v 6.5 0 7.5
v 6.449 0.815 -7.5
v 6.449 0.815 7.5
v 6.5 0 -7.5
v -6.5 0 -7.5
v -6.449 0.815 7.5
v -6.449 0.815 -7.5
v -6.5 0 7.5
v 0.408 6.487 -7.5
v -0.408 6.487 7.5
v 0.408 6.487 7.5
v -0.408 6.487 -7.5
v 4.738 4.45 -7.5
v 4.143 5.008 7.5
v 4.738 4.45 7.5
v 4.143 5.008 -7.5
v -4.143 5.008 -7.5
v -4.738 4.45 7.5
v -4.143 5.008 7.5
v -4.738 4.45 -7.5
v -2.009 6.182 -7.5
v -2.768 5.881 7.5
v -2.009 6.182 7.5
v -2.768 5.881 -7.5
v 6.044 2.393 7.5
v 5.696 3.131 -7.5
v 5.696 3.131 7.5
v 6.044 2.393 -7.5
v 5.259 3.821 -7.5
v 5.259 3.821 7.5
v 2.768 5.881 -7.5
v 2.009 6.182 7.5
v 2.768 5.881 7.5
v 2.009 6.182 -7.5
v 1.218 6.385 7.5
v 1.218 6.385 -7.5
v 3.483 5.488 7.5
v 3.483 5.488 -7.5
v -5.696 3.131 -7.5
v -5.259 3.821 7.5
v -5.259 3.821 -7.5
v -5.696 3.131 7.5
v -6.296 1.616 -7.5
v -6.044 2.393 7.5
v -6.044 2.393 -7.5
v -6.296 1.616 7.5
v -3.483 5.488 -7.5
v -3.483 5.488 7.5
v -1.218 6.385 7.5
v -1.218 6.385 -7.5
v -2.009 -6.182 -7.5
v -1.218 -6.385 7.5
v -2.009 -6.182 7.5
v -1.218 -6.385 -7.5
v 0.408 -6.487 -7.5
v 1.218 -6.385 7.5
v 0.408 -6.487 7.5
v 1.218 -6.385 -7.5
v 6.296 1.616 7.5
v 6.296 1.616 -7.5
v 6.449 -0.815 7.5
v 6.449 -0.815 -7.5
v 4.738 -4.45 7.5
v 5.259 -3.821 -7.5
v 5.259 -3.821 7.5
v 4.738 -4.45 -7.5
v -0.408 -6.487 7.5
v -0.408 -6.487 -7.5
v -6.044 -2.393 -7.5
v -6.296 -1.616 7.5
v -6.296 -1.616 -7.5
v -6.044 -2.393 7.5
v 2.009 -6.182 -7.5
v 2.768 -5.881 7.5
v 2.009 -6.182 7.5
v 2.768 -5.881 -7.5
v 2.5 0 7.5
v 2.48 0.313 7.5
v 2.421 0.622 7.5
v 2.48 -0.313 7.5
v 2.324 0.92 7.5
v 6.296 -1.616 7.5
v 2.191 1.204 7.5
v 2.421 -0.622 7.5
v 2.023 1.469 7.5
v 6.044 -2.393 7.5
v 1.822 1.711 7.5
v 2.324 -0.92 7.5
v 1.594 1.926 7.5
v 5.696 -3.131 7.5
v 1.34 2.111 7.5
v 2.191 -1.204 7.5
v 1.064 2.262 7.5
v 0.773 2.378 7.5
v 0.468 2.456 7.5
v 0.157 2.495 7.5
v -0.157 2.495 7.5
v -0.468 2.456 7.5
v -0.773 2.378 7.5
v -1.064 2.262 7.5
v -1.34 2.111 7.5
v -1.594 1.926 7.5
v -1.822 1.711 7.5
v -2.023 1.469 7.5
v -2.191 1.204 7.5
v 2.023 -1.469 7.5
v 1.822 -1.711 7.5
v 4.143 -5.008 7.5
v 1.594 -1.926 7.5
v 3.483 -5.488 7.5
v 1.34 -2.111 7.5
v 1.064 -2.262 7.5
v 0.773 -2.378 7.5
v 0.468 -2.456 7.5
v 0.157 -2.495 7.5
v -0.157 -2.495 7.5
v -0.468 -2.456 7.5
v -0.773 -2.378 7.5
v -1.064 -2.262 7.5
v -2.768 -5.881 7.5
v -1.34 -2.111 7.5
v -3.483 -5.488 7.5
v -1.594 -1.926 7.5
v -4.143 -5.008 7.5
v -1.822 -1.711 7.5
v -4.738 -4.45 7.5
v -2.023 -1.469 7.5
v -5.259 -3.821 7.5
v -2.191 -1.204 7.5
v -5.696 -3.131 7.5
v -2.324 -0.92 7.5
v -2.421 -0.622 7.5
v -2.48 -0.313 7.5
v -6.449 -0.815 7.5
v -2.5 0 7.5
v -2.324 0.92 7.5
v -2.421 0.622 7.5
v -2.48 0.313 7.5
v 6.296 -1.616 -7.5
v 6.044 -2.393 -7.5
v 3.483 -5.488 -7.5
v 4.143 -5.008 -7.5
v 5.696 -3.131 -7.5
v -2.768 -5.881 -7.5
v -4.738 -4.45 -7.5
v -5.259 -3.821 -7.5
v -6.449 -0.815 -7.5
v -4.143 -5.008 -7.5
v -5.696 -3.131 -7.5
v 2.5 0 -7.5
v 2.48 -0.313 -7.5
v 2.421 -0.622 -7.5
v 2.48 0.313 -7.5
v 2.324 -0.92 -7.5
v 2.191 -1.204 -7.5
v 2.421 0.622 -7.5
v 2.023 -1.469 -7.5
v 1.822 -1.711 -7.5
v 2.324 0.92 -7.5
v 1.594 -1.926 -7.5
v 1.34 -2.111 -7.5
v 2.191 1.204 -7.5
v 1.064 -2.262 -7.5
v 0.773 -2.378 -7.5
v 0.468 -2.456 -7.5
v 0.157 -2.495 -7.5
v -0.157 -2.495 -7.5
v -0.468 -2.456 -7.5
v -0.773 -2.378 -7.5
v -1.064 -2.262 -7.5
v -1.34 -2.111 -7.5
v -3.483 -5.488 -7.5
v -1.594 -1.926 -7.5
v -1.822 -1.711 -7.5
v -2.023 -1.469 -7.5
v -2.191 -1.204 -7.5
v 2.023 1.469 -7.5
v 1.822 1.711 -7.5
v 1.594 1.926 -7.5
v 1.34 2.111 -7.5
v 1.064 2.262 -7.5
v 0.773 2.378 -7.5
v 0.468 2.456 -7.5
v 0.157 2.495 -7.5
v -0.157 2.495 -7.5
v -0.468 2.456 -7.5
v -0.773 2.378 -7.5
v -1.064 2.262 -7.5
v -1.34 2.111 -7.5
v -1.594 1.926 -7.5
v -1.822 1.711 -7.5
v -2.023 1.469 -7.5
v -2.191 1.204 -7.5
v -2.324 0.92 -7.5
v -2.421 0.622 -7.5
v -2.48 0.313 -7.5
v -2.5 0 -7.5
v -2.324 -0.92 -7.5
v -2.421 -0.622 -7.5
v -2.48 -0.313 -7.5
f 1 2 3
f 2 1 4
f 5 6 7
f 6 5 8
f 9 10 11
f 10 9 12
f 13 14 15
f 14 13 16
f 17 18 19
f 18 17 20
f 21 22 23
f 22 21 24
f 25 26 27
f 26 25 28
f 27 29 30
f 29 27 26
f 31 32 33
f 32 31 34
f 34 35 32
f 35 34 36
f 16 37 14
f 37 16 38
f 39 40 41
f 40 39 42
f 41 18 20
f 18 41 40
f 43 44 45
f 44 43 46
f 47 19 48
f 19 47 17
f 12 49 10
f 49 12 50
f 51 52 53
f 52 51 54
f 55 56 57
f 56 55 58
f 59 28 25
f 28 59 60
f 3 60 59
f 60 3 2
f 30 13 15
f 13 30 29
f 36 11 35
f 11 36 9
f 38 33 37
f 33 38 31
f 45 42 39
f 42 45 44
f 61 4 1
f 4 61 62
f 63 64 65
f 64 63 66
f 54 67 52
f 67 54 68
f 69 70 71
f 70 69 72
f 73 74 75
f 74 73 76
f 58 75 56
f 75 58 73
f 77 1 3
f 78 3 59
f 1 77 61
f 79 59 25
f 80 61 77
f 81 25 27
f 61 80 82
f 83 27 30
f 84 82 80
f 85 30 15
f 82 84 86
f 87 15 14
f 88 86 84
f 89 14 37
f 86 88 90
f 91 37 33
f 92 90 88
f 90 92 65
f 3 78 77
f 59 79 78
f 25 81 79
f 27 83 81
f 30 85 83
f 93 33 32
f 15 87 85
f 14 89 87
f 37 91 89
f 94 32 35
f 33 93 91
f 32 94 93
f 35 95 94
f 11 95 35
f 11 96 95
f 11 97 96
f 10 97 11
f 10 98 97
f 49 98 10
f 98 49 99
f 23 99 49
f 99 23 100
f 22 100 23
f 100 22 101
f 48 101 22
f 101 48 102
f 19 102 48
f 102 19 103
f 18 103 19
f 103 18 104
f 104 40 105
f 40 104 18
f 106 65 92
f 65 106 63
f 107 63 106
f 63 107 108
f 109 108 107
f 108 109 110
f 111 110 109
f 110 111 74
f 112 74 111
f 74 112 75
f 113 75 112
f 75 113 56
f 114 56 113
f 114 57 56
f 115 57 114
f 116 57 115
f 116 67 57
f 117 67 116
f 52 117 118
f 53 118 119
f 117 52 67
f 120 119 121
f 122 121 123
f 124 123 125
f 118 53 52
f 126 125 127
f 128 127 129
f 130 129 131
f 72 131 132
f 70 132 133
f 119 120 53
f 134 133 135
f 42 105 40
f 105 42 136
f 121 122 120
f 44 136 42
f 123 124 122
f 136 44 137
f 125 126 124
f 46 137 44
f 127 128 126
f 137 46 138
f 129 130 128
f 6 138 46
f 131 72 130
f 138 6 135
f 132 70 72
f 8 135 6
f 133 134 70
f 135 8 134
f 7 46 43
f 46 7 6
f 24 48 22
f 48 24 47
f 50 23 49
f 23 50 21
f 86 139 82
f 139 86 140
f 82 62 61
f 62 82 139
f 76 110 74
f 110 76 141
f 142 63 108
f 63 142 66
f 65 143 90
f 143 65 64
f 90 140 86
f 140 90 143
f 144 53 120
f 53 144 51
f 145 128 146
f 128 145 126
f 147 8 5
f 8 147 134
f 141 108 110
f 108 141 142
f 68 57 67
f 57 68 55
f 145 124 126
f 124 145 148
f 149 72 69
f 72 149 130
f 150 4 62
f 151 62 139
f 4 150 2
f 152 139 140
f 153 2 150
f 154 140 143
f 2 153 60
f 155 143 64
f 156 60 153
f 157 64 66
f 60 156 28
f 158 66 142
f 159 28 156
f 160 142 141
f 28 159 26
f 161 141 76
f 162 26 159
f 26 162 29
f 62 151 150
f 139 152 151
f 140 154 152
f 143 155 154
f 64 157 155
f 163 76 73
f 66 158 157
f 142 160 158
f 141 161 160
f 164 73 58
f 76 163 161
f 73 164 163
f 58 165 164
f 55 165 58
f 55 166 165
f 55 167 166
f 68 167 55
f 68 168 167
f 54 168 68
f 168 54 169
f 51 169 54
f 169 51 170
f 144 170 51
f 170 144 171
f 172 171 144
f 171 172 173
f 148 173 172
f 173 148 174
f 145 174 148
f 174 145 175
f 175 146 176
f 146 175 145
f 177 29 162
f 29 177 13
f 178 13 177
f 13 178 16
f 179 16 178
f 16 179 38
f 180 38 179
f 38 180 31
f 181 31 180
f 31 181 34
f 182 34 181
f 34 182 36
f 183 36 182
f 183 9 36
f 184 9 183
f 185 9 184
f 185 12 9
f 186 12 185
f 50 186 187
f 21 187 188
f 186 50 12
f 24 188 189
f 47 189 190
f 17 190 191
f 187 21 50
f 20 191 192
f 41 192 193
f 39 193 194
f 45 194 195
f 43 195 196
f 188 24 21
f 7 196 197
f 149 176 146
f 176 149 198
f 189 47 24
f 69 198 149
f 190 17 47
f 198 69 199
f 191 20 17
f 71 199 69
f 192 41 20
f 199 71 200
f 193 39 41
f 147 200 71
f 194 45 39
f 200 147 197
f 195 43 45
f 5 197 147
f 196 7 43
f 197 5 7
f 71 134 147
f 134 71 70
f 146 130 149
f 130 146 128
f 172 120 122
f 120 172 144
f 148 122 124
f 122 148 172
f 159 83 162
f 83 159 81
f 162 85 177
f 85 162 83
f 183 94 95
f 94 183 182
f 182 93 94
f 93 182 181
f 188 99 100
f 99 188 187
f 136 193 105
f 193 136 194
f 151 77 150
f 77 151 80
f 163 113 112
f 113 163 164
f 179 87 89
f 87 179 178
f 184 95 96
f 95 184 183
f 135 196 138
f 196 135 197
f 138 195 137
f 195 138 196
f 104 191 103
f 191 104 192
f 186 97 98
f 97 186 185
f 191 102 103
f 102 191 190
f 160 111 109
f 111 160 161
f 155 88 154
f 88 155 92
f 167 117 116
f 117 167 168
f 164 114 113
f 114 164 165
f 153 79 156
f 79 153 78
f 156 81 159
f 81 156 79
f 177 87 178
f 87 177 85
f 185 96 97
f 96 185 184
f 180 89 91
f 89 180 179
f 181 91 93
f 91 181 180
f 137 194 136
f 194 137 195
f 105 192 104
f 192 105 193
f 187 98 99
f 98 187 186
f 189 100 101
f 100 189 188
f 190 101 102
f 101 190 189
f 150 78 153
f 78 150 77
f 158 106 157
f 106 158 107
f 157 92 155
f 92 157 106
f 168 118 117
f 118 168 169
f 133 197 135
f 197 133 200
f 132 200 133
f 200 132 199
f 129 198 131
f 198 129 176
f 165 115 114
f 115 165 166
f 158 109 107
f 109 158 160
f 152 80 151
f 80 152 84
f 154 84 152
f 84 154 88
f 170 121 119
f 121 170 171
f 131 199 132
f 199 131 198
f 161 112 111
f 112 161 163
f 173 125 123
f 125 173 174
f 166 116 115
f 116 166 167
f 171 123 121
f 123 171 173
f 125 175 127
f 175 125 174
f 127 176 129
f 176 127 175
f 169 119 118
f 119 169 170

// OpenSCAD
$fn = 50;


difference() {
	union() {
		translate(v = [0, 0, -7.5000000000]) {
			cylinder(h = 15, r = 6.5000000000);
		}
	}
	union() {
		translate(v = [0, 0, -100.0000000000]) {
			cylinder(h = 200, r = 2.5000000000);
		}
	}
}
